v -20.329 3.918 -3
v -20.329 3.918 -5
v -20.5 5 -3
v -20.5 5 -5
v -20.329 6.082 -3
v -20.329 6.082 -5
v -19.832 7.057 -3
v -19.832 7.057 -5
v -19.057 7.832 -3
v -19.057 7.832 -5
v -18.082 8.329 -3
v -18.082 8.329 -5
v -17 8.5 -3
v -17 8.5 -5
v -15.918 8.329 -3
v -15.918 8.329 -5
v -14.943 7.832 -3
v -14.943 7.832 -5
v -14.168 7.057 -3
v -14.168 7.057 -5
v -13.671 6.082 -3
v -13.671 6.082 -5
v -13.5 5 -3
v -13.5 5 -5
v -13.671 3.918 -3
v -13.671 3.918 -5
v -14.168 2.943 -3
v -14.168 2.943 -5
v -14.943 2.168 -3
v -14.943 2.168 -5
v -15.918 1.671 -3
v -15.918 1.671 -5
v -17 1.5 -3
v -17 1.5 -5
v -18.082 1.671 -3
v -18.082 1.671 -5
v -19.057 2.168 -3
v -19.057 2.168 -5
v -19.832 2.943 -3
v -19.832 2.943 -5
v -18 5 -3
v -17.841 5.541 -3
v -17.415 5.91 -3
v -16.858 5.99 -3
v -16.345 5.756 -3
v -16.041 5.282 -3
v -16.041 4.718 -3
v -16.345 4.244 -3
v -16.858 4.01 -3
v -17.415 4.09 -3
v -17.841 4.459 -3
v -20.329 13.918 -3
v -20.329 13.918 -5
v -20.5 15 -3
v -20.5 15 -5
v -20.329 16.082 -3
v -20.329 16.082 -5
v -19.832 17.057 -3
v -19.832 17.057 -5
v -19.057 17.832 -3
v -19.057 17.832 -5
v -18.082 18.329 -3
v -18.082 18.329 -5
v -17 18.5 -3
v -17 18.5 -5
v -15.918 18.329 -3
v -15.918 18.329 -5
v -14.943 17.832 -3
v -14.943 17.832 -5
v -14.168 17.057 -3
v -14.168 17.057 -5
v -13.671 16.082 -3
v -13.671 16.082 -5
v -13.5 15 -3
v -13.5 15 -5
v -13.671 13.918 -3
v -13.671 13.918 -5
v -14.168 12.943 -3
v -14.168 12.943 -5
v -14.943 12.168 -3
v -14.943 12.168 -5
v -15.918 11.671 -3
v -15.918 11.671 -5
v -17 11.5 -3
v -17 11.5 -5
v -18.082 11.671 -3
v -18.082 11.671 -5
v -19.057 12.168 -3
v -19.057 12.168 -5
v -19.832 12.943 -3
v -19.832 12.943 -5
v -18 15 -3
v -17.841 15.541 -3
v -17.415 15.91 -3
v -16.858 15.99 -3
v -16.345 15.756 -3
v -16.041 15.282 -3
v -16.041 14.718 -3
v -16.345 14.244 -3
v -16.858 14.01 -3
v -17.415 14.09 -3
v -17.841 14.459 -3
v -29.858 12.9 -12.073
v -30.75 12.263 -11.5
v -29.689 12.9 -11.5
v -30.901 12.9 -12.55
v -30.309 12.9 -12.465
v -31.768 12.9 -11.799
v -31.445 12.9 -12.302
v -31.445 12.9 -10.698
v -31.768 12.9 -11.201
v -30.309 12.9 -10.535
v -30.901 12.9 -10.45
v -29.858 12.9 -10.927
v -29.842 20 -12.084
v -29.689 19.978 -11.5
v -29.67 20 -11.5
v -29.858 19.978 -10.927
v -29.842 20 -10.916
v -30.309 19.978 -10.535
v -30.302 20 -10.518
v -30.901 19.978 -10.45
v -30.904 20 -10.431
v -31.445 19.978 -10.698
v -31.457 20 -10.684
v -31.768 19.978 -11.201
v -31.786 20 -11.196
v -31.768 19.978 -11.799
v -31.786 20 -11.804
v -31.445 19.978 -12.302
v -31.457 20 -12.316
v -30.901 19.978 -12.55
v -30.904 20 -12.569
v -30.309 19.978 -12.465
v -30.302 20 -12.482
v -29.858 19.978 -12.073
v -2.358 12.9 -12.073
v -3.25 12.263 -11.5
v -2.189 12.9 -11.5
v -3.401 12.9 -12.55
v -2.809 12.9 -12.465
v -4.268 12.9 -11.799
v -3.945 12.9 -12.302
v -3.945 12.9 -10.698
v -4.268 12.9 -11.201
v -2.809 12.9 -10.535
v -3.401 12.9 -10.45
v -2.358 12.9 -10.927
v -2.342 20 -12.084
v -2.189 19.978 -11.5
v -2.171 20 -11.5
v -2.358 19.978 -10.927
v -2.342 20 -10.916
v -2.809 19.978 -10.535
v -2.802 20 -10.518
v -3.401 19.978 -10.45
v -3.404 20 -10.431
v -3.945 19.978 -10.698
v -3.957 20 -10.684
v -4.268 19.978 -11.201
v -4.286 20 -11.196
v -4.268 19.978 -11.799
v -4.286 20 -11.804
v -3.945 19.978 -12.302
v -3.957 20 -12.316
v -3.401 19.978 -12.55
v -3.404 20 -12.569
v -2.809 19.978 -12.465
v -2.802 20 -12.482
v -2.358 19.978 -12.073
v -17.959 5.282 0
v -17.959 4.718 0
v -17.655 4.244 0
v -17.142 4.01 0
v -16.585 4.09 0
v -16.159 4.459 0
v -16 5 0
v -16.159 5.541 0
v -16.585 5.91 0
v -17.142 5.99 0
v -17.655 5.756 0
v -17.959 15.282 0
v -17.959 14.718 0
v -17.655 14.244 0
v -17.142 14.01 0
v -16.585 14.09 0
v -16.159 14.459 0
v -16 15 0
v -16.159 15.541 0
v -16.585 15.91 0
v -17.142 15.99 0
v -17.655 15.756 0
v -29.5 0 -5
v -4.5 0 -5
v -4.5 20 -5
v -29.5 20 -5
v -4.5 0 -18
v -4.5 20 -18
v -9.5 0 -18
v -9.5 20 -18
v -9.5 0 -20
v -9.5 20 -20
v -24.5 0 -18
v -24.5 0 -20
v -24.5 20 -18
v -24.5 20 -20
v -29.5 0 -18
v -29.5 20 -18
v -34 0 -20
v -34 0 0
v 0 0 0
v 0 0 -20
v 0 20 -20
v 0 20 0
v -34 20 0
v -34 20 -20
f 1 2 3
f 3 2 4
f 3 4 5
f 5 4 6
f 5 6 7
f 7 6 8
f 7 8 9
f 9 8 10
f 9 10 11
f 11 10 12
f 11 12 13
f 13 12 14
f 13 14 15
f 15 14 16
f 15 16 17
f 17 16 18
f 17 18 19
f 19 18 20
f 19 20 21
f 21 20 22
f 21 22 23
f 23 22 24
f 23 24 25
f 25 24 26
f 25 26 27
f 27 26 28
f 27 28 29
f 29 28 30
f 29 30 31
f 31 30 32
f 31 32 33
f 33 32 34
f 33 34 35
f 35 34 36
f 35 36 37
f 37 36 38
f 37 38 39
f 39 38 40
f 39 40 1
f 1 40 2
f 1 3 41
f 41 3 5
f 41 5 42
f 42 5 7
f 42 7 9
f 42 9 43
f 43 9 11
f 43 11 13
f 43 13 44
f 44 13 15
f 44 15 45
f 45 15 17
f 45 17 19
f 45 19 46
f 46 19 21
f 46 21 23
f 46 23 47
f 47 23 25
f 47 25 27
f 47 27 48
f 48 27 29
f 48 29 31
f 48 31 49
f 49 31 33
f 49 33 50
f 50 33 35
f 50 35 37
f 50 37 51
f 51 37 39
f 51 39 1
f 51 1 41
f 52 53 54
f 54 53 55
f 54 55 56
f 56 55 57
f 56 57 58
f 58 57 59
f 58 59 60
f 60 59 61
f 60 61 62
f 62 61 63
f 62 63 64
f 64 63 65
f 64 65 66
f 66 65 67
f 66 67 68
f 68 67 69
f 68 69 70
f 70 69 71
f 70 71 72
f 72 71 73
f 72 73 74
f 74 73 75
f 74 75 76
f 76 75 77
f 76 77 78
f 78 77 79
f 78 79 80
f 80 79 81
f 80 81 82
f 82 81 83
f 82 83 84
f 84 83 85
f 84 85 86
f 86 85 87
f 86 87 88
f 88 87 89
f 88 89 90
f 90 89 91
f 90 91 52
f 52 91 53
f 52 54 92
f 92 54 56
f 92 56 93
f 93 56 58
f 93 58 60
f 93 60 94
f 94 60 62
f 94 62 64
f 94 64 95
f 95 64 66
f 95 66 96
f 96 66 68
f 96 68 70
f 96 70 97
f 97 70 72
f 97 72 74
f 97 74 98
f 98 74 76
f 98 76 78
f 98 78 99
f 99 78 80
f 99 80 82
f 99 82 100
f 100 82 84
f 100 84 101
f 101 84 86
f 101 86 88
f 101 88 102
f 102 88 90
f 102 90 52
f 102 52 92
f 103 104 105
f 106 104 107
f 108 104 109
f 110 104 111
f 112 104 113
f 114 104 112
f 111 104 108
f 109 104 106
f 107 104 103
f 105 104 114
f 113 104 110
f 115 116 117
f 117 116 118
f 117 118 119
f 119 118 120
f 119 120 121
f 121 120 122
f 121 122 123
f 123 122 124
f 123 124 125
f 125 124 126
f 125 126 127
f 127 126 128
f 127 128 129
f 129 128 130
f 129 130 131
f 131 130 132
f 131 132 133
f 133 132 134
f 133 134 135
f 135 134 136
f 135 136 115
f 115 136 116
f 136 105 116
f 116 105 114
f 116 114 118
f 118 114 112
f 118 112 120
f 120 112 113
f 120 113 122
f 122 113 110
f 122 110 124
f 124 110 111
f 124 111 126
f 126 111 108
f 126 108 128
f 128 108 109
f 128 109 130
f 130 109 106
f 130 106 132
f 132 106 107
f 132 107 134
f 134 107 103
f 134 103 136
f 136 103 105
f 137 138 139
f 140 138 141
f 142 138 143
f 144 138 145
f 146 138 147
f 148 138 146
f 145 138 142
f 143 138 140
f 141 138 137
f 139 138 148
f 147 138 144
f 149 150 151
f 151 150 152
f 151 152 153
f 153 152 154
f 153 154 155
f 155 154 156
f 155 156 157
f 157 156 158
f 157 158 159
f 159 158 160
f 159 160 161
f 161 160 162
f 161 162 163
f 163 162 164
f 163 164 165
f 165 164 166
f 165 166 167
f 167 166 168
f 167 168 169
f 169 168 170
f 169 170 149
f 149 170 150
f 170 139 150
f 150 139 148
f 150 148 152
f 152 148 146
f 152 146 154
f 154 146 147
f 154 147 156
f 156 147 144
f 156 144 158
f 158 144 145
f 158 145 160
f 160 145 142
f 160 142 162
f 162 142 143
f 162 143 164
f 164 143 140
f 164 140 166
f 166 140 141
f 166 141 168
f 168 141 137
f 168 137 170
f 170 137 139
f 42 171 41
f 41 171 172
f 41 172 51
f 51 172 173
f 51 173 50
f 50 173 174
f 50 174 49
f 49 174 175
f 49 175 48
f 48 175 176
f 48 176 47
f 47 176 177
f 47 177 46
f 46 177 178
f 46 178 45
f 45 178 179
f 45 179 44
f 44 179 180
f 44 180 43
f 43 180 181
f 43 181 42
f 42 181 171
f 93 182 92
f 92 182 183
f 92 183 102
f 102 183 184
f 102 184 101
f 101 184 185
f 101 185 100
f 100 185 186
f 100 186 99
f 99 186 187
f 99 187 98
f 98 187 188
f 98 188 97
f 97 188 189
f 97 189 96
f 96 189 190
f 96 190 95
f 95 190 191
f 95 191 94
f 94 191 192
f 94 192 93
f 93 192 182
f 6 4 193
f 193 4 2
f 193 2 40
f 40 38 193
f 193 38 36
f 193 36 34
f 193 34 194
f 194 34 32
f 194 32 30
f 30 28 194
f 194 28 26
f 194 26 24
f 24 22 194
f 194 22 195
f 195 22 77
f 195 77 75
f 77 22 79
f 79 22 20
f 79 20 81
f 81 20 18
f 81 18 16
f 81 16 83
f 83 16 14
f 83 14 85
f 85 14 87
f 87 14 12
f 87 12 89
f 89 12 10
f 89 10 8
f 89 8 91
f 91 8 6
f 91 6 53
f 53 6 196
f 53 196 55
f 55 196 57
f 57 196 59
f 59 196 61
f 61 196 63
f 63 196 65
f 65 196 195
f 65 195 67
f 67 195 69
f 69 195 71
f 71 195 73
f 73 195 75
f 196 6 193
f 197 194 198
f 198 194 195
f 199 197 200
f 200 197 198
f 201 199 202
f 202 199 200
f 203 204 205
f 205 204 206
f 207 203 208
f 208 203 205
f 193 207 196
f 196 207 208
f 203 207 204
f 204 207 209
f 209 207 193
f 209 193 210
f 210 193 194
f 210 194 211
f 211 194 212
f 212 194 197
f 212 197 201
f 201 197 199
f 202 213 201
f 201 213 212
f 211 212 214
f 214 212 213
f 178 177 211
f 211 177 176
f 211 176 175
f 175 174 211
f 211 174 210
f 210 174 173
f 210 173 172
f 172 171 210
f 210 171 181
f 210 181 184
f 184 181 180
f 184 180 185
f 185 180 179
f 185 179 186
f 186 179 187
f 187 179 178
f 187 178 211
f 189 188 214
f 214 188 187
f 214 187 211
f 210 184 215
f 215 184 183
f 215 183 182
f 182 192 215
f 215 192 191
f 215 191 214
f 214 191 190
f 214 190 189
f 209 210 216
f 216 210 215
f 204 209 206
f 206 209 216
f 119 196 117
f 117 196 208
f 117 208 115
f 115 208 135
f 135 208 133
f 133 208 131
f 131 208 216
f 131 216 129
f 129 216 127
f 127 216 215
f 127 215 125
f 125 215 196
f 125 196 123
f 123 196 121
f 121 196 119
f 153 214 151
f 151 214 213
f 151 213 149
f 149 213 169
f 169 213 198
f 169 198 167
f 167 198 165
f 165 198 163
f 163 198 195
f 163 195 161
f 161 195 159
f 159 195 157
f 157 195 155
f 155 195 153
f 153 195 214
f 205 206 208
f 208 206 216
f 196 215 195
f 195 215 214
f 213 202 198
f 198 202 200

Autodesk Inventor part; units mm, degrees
ref_plane "YZ Plane" through (0, 0, 0) normal (1, 0, 0) x (0, 1, 0)
ref_plane "XZ Plane" through (0, 0, 0) normal (0, 1, 0) x (-1, 0, 0)
ref_plane "XY Plane" through (0, 0, 0) normal (0, 0, 1) x (1, 0, 0)
sketch "Sketch1" plane through (0, 0, 0) normal (0, 1, 0) x (-1, 0, 0)
  line L0 (0, 0) -> (34, 0)
  line L1 (34, 0) -> (34, -20)
  line L2 (34, -20) -> (0, -20)
  line L3 (0, -20) -> (0, 0)
  dimension "d0" = 34
  dimension "d1" = 20
extrude "Extrusion1" add sketch "Sketch1" along normal blind 20
sketch "Sketch2" plane through (0, 20, 0) normal (0, 1, 0) x (1, 0, 0)
  line L0 (-29.5, 18) -> (-4.5, 18)
  line L1 (-4.5, 18) -> (-4.5, 5)
  line L2 (-4.5, 5) -> (-29.5, 5)
  line L3 (-29.5, 5) -> (-29.5, 18)
  line L4 (0, 20) -> (-34, 20) projected
  line L5 (-34, 20) -> (-34, 0) projected
  line L6 (-24.5, 20) -> (-9.5, 20)
  line L7 (-9.5, 20) -> (-9.5, 18)
  line L8 (-9.5, 18) -> (-24.5, 18)
  line L9 (-24.5, 18) -> (-24.5, 20)
  line L10 (0, 0) -> (0, 20) projected
  point P0 (-9.5, 20)
  dimension "d6" = 25
  dimension "d7" = 13
  dimension "d8" = 2
  dimension "d9" = 4.5
  dimension "d12" = 5
  dimension "d13" = 5
  dimension "d26" = 4.5
extrude "Extrusion2" cut sketch "Sketch2" against normal blind 33
sketch "Sketch3" plane through (-4.5, 20, -5) normal (0, 0, -1) x (-1, 0, 0)
  line L0 (29.5, -20) -> (29.5, 0) projected
  line L1 (-4.5, -20) -> (-4.5, 0) projected
  line L2 (29.5, 0) -> (-4.5, 0) projected
  line L3 (12.5, 0) -> (12.5, -20)
  circle A0 centre (12.5, -5) radius 1
  circle A1 centre (12.5, -15) radius 1
  dimension "d27" = 2
  dimension "d28" = 2
  dimension "d29" = 5
  dimension "d30" = 5
  dimension "d33" = 10
extrude "Extrusion3" cut sketch "Sketch3" against normal through all
sketch "Sketch4" plane through (0, 20, 0) normal (0, 1, 0) x (1, 0, 0)
  line L0 (-34, 20) -> (-34, 0) projected
  line L1 (-29.5, 18) -> (-29.5, 5) projected
  line L2 (-9.5, 18) -> (-4.5, 18) projected
  line L3 (-29.5, 5) -> (-4.5, 5)
  line L4 (-4.5, 5) -> (-4.5, 18)
  line L5 (-4.5, 18) -> (-29.5, 18)
  line L6 (-29.5, 18) -> (-29.5, 5)
  line L7 (-29.5, 11.5) -> (-34, 11.5)
  line L8 (-29.5, 11.5) -> (0, 11.5)
  line L9 (0, 0) -> (0, 20) projected
  circle A0 centre (-3.25, 11.5) radius 0.8
  circle A1 centre (-30.75, 11.5) radius 0.8
  dimension "d21" = 1.6
  dimension "d22" = 3.25
  dimension "d31" = 1.6
  dimension "d32" = 3.25
hole "Hole1" at (-30.75, 20, -11.5) at (-3.25, 20, -11.5) direction (0, -1, 0) diameter 2.1211 depth 7.1 tip angle 118 countersink diameter 2.159 countersink angle 82 thread size "M2.5x0.35" class "6H" standard "ANSI Metric M Profile"
sketch "Sketch6" plane through (-4.5, 20, -5) normal (0, 0, -1) x (-1, 0, 0)
  line L0 (29.5, -20) -> (29.5, 0)
  line L1 (-4.5, -20) -> (-4.5, 0)
  line L2 (29.5, 0) -> (-4.5, 0)
  line L3 (12.5, 0) -> (12.5, -20)
  circle A0 centre (12.5, -5) radius 1
  circle A1 centre (12.5, -15) radius 1
  circle A2 centre (12.5, -5) radius 1 projected
  circle A3 centre (12.5, -5) radius 3.5
  circle A4 centre (12.5, -15) radius 3.5
  dimension "d41" = 2
  dimension "d42" = 2
  dimension "d43" = 5
  dimension "d44" = 5
  dimension "d45" = 10
  dimension "d46" = 7
  dimension "d47" = 7
extrude "Extrusion5" cut sketch "Sketch6" against normal blind 2 contours A3 L3 A0 | A4 L3 A1 | L3 A1 A4 | L3 A0 A3
properties part number "Servo Holder"
